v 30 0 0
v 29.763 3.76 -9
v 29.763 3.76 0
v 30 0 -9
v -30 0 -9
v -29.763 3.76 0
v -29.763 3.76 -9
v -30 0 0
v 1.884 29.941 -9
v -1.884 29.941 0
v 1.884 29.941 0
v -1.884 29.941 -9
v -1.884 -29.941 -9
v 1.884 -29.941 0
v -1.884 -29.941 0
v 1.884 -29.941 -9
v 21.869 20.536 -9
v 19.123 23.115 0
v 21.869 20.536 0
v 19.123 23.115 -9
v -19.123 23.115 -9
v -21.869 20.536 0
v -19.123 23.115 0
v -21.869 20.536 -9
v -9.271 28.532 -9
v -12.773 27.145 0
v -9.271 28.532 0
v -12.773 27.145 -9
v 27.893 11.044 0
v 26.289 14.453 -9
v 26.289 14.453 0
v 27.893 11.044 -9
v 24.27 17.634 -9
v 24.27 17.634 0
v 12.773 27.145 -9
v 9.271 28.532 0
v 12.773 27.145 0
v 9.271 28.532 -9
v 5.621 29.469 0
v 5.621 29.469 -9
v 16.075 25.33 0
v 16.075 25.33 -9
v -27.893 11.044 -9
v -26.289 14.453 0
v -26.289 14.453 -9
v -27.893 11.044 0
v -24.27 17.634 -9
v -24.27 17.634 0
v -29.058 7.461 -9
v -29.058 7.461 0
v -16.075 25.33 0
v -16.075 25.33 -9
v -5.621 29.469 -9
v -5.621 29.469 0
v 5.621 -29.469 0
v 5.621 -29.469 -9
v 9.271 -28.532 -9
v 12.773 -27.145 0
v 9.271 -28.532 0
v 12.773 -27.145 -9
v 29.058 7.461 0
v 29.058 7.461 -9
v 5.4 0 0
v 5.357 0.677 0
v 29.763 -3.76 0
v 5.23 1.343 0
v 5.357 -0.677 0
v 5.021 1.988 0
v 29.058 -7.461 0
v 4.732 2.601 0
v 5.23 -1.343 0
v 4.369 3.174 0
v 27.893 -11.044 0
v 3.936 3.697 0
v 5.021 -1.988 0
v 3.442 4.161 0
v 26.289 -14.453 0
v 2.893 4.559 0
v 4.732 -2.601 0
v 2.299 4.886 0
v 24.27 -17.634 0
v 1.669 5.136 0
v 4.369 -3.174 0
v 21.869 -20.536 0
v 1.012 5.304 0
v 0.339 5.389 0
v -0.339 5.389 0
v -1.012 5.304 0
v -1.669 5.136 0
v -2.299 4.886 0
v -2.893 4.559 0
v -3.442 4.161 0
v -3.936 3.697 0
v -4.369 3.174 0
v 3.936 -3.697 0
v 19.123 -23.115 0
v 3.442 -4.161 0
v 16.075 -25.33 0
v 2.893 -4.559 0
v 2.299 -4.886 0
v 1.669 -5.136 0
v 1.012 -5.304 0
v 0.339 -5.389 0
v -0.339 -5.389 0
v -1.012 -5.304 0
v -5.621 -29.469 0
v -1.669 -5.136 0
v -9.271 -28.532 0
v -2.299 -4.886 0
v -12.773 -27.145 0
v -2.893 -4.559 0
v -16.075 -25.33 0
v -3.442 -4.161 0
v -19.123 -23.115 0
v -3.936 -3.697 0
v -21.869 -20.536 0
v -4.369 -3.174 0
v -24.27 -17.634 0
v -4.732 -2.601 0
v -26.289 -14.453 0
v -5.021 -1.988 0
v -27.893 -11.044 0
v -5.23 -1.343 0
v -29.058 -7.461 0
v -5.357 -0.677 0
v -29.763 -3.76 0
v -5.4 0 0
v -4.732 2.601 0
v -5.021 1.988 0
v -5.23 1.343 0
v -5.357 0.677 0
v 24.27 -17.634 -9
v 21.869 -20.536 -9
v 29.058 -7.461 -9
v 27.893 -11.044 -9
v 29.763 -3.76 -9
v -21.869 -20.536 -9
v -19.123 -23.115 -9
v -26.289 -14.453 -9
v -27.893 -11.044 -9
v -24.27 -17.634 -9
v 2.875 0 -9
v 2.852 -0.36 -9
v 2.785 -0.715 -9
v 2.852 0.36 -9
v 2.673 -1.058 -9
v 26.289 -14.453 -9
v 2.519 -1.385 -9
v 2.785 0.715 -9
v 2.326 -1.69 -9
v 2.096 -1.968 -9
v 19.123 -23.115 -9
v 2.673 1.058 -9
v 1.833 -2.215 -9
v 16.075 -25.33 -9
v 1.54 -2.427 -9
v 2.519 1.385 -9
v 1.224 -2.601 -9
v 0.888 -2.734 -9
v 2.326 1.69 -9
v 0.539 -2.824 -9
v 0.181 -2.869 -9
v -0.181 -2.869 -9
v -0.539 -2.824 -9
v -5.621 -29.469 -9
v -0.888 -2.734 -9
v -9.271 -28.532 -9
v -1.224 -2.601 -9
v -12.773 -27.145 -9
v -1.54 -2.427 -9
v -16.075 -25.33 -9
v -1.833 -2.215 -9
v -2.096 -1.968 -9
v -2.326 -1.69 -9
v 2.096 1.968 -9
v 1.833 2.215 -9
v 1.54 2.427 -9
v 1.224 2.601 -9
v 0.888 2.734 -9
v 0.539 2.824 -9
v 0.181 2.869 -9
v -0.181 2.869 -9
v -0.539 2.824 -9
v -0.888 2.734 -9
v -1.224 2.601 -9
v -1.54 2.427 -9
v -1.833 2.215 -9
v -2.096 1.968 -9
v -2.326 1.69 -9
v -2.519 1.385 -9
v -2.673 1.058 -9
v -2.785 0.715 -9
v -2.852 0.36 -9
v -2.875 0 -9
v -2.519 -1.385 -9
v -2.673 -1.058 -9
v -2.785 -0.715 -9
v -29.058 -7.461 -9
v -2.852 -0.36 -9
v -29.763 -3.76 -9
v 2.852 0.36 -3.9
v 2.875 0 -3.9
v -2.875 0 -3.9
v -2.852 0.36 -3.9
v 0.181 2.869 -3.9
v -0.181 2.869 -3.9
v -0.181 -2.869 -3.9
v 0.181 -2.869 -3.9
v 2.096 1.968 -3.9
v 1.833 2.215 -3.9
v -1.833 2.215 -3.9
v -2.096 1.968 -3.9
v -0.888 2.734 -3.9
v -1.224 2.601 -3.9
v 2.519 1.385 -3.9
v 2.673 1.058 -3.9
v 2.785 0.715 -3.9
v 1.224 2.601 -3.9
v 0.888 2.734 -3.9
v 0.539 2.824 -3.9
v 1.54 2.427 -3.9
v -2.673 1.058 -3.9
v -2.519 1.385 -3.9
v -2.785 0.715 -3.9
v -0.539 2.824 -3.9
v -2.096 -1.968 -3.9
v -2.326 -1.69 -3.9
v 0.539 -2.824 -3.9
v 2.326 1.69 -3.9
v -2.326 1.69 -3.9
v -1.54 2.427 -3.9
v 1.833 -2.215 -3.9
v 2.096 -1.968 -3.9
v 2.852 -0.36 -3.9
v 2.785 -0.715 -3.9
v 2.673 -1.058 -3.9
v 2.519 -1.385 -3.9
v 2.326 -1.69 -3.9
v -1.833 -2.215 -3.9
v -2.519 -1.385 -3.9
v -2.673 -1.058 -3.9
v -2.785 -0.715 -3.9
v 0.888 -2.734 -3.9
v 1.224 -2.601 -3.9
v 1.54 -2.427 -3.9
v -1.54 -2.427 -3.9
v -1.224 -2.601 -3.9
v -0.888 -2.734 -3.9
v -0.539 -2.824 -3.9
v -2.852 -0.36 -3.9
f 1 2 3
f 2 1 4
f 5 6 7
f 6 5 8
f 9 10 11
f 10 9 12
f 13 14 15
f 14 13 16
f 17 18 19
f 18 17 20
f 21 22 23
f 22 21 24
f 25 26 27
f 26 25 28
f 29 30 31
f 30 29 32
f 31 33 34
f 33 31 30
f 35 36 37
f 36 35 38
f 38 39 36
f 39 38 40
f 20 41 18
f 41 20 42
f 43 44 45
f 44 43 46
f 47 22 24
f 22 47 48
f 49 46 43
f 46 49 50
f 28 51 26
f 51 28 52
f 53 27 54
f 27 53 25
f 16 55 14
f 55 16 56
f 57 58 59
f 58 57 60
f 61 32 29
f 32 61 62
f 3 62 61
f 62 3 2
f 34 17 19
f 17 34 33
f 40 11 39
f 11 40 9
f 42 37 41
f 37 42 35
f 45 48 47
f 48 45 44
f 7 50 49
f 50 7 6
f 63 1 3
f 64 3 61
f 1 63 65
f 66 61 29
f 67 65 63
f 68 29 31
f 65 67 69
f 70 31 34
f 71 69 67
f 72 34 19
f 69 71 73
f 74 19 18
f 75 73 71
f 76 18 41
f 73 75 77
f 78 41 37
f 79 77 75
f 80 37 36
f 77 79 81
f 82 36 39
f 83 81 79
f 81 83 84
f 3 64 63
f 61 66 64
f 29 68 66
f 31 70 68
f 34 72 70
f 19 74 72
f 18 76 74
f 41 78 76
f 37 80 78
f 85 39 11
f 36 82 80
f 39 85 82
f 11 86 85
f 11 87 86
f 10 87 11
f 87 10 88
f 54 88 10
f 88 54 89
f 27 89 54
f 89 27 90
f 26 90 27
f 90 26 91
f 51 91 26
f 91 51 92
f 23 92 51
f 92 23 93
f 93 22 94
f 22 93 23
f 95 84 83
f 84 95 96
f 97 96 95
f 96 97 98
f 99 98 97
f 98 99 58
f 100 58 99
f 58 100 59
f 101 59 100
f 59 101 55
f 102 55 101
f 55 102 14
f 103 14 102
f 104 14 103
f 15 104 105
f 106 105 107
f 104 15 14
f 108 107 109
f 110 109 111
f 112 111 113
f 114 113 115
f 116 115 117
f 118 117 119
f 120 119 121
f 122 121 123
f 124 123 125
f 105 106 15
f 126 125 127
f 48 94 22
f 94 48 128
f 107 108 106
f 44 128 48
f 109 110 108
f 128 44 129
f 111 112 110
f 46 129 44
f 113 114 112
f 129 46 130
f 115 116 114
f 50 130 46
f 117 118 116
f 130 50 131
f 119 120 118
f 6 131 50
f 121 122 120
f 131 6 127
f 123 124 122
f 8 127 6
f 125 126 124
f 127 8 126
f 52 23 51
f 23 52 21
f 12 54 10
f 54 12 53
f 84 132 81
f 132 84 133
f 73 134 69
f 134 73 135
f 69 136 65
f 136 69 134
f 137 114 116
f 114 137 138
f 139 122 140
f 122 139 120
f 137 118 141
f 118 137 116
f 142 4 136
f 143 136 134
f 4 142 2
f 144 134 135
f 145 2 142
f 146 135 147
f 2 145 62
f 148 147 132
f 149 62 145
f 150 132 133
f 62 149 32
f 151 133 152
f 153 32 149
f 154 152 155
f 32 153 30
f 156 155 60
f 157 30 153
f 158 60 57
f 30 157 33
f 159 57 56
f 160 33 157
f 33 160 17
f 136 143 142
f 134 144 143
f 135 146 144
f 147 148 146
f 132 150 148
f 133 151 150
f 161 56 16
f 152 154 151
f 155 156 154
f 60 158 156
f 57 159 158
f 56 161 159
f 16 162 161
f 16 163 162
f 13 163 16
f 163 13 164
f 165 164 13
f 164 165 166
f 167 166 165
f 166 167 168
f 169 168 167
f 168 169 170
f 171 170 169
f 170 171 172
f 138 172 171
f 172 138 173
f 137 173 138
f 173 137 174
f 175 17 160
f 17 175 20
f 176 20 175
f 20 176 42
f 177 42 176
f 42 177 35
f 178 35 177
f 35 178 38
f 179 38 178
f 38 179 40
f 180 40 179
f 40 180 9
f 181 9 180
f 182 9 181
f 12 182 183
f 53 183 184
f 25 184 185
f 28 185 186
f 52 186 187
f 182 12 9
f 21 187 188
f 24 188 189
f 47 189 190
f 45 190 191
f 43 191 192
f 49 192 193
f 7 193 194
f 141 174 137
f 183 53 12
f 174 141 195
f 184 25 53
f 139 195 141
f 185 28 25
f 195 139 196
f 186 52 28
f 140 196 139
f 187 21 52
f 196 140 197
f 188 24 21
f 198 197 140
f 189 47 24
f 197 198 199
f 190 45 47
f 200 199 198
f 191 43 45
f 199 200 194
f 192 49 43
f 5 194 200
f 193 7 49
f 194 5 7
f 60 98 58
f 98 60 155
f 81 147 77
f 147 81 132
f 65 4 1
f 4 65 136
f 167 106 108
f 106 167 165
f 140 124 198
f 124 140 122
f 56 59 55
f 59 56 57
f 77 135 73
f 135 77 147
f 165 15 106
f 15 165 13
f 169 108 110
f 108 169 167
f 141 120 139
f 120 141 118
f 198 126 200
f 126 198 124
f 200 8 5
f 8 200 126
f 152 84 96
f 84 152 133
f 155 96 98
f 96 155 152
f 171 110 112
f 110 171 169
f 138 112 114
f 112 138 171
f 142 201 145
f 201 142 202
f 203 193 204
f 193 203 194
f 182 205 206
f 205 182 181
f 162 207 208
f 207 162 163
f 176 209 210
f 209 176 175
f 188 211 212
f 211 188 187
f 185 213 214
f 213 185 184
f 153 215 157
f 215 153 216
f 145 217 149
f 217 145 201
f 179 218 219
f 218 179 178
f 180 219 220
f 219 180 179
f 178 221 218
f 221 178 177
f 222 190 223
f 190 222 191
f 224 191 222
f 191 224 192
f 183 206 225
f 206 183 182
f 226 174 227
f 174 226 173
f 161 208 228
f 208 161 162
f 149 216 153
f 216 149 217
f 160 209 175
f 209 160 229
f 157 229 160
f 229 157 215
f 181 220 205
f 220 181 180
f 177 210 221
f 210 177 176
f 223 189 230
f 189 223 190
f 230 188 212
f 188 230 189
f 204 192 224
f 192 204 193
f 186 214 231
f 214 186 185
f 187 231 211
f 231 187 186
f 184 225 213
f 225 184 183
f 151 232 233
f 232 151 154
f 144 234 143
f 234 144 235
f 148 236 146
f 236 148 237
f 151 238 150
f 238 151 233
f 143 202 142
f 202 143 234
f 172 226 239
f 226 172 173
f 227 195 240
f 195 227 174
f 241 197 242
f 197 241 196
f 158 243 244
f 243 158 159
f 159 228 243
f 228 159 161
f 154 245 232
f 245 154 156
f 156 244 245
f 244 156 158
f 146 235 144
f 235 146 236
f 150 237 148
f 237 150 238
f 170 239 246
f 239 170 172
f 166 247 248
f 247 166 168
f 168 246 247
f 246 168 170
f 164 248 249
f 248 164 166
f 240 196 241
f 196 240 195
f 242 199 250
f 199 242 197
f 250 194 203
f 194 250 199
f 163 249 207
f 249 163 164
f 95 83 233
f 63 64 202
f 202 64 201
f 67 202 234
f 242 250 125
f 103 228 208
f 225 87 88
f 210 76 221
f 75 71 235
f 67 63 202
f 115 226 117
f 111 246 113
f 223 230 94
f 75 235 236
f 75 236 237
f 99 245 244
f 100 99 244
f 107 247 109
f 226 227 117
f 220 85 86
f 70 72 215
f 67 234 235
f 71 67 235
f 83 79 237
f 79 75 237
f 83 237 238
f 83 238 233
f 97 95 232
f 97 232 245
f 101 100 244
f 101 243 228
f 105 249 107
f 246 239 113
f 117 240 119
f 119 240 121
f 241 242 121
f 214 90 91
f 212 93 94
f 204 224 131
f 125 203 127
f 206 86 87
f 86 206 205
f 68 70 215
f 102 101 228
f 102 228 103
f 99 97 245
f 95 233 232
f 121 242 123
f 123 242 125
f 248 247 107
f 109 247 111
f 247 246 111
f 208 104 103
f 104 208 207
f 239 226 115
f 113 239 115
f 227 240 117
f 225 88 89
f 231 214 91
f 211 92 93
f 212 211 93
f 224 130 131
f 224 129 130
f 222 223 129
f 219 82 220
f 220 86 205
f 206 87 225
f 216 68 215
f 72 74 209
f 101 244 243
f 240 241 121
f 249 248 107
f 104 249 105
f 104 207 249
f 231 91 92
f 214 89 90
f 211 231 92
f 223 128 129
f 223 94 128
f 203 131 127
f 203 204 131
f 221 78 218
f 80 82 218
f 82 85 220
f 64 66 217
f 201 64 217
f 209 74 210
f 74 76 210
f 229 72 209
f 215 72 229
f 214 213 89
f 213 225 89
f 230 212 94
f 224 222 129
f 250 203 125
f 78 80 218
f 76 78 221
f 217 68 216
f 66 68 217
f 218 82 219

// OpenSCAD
$fn = 50;


difference() {
	union() {
		translate(v = [0, 0, -9.0000000000]) {
			cylinder(h = 9, r = 30.0000000000);
		}
		translate(v = [0, 0, -12.0000000000]) {
			cylinder(h = 12, r = 2.8750000000);
		}
	}
	union() {
		translate(v = [0, 0, 0]) {
			rotate(a = [0, 0, 0]) {
				difference() {
					union() {
						translate(v = [0, 0, -12.0000000000]) {
							cylinder(h = 12, r = 2.6000000000);
						}
						translate(v = [0, 0, -3.9000000000]) {
							cylinder(h = 3.9000000000, r1 = 2.8750000000, r2 = 5.4000000000);
						}
						translate(v = [0, 0, -12.0000000000]) {
							cylinder(h = 12, r = 2.8750000000);
						}
						translate(v = [0, 0, -12.0000000000]) {
							cylinder(h = 12, r = 2.6000000000);
						}
					}
					union();
				}
			}
		}
	}
}
